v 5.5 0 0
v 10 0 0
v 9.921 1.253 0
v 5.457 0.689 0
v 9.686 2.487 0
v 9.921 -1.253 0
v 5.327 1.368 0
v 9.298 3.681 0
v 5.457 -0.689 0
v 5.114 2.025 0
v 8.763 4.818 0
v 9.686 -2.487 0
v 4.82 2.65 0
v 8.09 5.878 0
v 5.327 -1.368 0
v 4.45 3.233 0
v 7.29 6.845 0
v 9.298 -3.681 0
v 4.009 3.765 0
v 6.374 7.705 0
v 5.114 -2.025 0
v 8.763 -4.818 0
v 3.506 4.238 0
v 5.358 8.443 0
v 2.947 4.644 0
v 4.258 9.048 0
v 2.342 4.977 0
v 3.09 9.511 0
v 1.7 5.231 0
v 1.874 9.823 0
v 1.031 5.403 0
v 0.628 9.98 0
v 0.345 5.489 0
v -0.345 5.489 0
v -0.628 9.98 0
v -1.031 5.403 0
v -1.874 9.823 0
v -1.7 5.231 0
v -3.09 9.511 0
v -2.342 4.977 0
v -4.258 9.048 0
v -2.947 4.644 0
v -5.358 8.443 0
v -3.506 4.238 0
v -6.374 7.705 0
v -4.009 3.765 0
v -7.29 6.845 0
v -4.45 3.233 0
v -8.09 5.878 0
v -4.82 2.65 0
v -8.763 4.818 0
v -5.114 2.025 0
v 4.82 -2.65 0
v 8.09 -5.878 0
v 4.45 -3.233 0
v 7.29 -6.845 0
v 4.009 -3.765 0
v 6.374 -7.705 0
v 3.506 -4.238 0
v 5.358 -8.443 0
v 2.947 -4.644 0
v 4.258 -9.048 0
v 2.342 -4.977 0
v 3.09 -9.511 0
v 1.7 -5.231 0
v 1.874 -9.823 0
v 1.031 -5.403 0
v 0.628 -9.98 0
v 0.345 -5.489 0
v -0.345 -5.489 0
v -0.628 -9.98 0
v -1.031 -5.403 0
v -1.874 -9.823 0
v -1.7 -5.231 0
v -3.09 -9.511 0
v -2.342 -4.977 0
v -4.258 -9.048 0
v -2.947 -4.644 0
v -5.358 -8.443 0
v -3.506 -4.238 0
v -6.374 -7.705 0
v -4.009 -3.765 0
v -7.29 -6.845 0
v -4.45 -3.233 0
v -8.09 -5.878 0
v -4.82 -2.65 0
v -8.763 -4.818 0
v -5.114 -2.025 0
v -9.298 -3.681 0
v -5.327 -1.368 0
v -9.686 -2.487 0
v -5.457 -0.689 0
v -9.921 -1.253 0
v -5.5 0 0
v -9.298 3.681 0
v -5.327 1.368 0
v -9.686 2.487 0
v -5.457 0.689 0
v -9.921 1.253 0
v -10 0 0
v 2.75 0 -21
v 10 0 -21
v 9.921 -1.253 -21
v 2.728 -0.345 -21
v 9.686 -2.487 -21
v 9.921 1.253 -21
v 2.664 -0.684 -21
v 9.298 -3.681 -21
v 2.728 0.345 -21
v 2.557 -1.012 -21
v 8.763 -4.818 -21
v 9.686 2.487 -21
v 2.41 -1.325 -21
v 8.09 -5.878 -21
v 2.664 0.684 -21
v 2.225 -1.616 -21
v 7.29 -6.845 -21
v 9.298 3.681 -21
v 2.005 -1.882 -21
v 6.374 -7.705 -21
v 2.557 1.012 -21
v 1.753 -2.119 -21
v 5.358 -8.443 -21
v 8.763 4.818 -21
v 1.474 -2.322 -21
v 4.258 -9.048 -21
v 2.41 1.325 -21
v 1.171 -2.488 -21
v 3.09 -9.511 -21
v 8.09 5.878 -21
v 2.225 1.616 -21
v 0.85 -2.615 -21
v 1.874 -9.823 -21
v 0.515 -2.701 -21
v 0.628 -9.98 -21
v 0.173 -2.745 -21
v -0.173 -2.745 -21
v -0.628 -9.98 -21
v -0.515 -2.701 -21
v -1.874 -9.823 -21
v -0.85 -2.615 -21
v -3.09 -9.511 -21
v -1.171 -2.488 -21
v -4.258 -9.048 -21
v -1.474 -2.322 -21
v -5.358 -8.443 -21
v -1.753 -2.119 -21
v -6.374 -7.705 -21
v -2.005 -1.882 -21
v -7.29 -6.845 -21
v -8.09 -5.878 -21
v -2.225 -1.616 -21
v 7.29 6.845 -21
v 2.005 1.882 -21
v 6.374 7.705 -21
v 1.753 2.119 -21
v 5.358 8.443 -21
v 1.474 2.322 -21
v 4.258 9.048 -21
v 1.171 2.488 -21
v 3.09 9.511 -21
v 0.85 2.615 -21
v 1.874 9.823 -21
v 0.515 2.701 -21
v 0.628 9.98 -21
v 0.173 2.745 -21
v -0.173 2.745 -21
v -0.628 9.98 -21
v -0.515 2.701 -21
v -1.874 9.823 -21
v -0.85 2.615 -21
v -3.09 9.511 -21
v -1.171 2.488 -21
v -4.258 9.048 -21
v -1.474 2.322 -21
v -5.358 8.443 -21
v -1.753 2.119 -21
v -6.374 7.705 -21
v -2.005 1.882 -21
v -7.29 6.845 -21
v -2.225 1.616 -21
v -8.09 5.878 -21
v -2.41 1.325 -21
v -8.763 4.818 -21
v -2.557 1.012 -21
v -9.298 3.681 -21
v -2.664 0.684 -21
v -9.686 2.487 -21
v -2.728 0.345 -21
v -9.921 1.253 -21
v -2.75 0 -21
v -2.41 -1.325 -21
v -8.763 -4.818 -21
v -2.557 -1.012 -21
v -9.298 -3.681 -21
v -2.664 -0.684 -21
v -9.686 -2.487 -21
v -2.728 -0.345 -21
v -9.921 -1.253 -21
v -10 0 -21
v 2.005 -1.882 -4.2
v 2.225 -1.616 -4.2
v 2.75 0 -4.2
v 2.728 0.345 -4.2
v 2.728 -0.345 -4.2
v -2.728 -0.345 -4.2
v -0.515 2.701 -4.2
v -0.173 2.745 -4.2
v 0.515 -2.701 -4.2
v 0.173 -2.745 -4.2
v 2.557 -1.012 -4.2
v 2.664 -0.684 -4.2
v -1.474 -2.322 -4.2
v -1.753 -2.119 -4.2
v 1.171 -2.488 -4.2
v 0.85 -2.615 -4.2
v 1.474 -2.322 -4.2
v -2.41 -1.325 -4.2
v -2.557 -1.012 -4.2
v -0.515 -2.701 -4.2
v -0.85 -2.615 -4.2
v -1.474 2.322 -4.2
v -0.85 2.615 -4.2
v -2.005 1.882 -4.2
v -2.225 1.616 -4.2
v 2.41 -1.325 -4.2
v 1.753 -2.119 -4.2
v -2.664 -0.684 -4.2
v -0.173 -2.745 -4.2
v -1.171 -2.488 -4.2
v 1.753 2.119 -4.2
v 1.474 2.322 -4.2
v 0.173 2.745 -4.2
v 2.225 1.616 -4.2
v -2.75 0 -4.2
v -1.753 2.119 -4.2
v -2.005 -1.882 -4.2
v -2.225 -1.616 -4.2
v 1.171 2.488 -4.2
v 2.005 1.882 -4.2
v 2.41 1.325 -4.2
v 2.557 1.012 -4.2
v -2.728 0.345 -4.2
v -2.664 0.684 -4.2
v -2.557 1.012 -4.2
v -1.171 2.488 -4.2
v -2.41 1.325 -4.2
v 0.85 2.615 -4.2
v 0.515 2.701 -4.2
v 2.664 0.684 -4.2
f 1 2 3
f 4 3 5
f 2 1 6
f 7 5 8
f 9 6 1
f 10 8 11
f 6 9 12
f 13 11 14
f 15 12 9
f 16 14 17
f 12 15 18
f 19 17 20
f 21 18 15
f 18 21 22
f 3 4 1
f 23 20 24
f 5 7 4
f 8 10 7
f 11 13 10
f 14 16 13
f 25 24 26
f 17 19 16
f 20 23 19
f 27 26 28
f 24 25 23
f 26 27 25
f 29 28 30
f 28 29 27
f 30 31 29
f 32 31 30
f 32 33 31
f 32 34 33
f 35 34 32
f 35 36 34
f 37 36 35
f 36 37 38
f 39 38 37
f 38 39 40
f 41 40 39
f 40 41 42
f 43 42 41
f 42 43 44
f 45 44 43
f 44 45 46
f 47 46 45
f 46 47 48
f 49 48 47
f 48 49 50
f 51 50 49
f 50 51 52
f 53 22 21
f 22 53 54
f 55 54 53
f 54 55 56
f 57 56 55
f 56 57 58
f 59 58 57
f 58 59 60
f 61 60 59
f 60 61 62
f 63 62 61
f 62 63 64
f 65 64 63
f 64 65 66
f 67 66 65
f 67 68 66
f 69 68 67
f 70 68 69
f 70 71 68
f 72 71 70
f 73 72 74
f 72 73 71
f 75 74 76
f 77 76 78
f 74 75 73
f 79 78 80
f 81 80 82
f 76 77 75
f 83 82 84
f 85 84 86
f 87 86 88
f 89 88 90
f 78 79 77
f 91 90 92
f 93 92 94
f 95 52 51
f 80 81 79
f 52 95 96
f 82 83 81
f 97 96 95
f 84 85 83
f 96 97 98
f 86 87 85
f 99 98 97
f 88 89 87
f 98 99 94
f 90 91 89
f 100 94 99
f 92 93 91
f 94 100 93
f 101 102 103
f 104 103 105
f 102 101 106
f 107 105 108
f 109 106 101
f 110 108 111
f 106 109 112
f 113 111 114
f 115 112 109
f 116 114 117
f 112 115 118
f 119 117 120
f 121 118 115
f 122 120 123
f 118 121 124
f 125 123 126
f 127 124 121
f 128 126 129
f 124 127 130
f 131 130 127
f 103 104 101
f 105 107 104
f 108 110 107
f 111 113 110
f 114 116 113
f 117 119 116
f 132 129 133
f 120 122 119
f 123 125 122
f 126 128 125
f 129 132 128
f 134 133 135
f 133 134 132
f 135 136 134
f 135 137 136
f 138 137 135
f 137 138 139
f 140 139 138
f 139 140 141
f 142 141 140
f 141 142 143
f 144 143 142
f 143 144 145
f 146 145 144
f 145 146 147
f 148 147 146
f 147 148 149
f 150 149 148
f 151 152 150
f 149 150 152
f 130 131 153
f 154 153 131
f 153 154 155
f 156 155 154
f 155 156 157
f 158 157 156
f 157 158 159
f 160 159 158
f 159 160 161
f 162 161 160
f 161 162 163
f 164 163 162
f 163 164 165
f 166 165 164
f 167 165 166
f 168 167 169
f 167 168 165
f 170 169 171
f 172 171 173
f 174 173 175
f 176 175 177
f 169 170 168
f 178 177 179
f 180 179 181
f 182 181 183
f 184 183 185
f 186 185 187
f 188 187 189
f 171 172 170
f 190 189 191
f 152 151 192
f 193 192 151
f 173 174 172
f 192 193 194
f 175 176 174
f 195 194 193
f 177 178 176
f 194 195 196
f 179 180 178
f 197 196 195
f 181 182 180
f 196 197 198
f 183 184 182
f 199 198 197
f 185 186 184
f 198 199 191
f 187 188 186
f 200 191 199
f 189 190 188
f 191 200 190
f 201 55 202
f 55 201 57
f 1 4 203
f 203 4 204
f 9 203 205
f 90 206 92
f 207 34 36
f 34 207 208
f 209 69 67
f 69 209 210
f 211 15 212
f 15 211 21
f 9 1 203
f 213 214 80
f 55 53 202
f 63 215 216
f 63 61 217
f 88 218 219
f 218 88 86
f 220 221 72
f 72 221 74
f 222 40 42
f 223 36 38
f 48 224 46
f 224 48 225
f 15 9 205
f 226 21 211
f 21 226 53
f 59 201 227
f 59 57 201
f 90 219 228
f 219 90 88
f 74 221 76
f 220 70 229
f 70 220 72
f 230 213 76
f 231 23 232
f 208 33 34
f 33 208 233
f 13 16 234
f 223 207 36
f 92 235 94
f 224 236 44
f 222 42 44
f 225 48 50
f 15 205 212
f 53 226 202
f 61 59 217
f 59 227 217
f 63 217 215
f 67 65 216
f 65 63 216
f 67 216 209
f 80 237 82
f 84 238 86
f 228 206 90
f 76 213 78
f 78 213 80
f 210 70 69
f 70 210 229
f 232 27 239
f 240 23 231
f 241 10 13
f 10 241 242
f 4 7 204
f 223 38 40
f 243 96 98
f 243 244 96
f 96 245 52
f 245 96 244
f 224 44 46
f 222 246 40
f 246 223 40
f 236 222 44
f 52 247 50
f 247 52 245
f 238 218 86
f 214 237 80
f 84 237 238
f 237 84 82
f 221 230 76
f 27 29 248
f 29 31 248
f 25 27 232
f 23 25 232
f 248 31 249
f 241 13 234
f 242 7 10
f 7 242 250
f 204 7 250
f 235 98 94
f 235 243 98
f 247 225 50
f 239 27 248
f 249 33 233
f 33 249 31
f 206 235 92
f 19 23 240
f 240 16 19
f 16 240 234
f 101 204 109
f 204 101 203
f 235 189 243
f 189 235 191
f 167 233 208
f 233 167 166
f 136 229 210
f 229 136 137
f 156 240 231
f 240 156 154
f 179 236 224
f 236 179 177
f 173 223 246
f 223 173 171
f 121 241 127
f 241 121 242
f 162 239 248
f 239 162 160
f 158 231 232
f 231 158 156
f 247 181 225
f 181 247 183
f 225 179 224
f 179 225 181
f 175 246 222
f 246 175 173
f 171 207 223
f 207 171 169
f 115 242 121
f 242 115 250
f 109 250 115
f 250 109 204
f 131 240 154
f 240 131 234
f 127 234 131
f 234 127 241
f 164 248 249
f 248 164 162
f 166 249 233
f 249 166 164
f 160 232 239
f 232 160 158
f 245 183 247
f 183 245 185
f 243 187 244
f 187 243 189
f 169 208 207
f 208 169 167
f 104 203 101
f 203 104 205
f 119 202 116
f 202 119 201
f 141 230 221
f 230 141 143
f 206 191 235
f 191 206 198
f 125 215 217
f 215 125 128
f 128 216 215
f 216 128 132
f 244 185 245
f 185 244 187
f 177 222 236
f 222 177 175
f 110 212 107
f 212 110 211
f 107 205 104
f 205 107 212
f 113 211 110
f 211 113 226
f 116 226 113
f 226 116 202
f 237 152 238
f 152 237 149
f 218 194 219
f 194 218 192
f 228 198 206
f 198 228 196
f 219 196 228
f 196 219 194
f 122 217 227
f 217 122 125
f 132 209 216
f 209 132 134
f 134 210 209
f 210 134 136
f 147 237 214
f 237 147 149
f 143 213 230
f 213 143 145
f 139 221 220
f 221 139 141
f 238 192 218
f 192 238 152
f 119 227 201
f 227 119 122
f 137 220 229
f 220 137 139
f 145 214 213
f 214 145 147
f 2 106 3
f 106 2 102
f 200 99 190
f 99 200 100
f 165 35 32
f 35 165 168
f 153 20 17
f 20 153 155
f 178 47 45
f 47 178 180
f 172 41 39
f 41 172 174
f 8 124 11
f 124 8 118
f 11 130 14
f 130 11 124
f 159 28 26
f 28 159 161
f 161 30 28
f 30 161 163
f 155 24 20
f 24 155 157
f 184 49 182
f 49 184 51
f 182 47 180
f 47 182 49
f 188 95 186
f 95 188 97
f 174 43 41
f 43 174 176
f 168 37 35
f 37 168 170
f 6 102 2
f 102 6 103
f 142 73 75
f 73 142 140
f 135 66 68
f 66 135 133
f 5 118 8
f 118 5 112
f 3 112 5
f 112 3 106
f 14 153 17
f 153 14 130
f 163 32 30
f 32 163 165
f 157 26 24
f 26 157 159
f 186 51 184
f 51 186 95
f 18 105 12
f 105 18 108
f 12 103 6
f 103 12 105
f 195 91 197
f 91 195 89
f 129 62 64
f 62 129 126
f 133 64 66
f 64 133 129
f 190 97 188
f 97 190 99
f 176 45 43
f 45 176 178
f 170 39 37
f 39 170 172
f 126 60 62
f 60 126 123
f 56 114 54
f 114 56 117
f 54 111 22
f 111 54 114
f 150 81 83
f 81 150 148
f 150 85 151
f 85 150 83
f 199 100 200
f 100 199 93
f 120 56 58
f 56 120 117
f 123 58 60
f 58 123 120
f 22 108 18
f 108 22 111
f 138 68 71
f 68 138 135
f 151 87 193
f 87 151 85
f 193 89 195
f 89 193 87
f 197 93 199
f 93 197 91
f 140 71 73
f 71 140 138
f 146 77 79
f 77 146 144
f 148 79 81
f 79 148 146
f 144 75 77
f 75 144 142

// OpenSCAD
$fn = 50;


difference() {
	union() {
		translate(v = [0, 0, -21.0000000000]) {
			cylinder(h = 21, r = 10.0000000000);
		}
		cylinder(h = 0, r = 20.0000000000);
	}
	union() {
		translate(v = [0, 0, 0]) {
			rotate(a = [0, 0, 0]) {
				difference() {
					union() {
						#translate(v = [0, 0, -21.0000000000]) {
							cylinder(h = 21, r = 2.2500000000);
						}
						#translate(v = [0, 0, -4.2000000000]) {
							cylinder(h = 4.2000000000, r = 10.0000000000, r1 = 2.7500000000, r2 = 5.5000000000);
						}
						#translate(v = [0, 0, -21.0000000000]) {
							cylinder(h = 21, r = 2.7500000000);
						}
						#translate(v = [0, 0, -21.0000000000]) {
							cylinder(h = 21, r = 2.2500000000);
						}
					}
					union();
				}
			}
		}
	}
}
